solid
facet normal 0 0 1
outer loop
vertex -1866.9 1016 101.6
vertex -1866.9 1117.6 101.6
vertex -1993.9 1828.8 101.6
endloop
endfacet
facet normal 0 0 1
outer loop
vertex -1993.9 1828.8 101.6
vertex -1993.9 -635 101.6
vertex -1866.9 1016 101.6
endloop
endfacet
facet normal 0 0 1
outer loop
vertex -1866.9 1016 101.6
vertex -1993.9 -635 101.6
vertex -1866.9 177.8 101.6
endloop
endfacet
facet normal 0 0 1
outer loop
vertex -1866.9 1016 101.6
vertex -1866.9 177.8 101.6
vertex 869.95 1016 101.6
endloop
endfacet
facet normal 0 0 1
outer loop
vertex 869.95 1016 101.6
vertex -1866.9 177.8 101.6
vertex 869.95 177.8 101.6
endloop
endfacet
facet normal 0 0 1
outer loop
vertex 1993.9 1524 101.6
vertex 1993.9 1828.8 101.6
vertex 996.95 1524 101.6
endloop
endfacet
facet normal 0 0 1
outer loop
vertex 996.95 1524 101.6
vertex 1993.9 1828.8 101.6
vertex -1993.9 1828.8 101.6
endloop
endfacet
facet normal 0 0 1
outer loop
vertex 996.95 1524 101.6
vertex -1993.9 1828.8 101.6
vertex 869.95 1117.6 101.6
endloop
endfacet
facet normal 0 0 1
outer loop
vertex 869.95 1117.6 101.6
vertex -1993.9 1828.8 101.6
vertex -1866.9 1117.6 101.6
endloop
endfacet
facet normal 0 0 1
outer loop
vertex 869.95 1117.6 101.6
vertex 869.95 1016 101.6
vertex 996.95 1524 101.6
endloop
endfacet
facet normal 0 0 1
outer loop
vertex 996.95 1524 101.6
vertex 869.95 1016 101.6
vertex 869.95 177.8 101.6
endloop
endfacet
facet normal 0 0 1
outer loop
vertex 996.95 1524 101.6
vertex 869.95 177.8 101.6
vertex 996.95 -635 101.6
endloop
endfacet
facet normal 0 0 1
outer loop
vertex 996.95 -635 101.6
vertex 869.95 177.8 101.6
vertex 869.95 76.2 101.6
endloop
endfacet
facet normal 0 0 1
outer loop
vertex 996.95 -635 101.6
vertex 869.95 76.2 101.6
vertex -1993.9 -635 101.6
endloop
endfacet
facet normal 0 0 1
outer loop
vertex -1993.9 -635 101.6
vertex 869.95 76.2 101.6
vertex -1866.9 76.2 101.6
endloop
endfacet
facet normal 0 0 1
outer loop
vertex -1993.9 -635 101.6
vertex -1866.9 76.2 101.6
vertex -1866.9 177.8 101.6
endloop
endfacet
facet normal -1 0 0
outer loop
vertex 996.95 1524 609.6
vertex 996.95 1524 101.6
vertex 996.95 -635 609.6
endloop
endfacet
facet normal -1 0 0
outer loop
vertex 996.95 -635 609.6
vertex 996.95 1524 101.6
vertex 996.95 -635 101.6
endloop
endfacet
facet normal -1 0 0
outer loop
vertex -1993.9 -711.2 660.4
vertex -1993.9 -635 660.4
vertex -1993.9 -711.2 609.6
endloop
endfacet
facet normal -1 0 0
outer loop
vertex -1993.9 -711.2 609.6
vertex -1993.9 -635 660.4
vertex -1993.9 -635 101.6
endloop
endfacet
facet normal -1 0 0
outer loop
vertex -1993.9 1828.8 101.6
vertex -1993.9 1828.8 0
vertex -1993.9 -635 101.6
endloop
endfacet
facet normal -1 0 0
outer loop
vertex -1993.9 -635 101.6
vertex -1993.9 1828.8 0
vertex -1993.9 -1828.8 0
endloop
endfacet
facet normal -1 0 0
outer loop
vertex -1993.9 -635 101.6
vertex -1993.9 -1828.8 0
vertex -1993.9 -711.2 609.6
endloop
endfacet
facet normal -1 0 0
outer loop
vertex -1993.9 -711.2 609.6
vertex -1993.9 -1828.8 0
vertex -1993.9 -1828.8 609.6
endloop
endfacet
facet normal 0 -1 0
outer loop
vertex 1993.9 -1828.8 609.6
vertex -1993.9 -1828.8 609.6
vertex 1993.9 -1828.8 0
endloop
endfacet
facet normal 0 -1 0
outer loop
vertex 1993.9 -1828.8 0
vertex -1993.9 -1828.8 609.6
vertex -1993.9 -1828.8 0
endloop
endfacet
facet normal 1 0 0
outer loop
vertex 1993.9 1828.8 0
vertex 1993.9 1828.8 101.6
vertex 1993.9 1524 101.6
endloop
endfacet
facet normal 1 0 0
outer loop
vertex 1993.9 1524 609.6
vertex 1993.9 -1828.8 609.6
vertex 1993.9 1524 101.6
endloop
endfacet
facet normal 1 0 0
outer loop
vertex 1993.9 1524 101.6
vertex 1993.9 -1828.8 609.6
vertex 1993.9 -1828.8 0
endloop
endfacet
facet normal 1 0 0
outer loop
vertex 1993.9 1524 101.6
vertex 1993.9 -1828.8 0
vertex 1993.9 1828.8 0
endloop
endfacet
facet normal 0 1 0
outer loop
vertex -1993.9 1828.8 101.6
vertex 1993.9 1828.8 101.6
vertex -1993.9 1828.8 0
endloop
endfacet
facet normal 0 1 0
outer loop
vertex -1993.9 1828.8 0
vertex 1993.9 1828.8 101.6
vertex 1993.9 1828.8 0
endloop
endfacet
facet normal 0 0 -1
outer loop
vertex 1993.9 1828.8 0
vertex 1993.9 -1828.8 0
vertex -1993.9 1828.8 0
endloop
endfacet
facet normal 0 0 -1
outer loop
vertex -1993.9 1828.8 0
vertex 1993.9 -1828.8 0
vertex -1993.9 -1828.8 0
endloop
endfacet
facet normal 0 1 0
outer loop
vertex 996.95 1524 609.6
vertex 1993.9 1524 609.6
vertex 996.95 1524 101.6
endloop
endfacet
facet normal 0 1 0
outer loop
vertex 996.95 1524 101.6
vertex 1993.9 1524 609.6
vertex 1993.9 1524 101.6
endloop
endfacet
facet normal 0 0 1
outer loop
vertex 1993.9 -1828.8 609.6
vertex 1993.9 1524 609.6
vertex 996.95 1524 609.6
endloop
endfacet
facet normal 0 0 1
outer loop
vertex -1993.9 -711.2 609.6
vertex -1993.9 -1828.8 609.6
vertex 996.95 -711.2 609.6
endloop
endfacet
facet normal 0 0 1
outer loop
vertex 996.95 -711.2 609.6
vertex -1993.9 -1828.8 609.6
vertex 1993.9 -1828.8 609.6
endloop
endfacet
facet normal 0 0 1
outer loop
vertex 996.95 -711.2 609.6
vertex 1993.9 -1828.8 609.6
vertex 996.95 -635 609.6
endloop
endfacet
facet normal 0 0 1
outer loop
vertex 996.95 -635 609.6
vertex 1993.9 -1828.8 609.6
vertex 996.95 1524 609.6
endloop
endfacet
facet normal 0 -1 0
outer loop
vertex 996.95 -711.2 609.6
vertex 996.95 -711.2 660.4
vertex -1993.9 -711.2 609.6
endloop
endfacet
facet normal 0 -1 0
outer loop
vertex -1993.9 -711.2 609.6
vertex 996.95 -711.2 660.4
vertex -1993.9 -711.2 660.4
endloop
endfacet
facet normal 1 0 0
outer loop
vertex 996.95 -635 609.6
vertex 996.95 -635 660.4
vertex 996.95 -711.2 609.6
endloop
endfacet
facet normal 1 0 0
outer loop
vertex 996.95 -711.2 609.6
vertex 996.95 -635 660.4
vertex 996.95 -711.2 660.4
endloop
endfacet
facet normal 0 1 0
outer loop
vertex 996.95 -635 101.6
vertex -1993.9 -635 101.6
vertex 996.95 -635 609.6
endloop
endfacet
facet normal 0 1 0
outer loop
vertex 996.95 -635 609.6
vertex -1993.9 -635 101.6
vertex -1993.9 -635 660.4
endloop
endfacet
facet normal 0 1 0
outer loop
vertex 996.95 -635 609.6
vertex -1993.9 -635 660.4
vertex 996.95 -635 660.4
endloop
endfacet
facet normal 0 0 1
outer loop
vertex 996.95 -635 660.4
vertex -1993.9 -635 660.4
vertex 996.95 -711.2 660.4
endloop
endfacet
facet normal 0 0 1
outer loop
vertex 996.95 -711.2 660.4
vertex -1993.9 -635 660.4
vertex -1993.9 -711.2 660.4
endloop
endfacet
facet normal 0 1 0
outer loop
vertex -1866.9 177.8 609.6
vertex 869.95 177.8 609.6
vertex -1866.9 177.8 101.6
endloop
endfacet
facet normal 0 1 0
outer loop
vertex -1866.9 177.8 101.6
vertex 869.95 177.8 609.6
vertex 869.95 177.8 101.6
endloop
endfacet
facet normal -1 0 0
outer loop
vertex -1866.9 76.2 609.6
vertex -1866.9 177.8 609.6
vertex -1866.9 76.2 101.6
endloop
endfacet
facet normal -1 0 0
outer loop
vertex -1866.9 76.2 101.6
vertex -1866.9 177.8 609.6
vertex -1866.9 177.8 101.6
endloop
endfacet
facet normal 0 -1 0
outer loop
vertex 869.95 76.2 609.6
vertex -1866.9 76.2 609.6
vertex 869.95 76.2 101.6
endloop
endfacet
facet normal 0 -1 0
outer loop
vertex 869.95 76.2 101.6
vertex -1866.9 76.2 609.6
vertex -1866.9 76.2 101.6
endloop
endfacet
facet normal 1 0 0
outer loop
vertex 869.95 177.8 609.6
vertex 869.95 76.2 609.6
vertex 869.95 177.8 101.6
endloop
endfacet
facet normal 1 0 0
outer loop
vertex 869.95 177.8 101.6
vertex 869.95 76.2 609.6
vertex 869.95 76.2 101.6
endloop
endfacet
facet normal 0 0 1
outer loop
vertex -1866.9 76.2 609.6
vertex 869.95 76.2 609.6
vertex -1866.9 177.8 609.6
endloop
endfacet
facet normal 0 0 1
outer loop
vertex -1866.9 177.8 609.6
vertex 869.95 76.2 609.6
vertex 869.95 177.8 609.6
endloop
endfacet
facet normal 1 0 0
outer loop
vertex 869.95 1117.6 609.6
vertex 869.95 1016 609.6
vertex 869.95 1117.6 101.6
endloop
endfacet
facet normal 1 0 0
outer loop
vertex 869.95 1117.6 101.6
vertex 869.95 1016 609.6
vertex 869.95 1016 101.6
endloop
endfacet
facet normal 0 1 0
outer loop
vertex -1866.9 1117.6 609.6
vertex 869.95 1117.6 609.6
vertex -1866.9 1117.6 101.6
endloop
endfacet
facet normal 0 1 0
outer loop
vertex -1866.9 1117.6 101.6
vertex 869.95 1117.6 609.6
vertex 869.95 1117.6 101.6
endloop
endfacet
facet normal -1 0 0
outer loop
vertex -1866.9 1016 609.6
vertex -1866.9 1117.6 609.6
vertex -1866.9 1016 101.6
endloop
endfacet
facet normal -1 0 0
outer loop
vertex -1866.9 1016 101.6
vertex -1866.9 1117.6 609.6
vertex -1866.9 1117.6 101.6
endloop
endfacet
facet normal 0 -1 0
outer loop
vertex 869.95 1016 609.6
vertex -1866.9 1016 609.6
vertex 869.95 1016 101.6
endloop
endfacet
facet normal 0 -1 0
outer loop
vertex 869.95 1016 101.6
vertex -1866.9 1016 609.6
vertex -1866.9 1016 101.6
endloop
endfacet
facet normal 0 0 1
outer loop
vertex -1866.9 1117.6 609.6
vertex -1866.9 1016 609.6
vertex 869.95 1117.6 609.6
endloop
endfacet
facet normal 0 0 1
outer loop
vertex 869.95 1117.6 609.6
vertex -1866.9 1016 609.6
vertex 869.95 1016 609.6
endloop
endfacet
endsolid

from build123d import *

# Parameters (mm, degrees)
SKETCH1_W           = 3987.8
SKETCH1_H           = 3657.6
BOSS_EXTRUDE1_DEPTH = 101.6
BOSS_EXTRUDE2_DEPTH = 508
SKETCH4_W           = 2990.85
SKETCH4_H           = 76.2
BOSS_EXTRUDE3_DEPTH = 558.8
SKETCH5_W           = 2736.85
SKETCH5_H           = 101.6
BOSS_EXTRUDE4_DEPTH = 508


with BuildPart() as part:
    # Sketch1 → Boss-Extrude1 (new body)
    with BuildSketch(Plane.XY):
        Rectangle(SKETCH1_W, SKETCH1_H)
    extrude(amount=BOSS_EXTRUDE1_DEPTH)

    # Sketch2 → Boss-Extrude2 (add)
    with BuildSketch(Plane.XY.offset(101.6)):
        Polygon((-1993.9, -1828.8), (-1993.9, -711.2), (996.95, -711.2), (996.95, 1524), (1993.9, 1524), (1993.9, -1828.8), align=None)
    extrude(amount=BOSS_EXTRUDE2_DEPTH)

    # Sketch4 → Boss-Extrude3 (add)
    with BuildSketch(Plane.XY.offset(101.6)):
        with Locations((-498.475, -673.1)):
            Rectangle(SKETCH4_W, SKETCH4_H)
    extrude(amount=BOSS_EXTRUDE3_DEPTH)

    # Sketch5 → Boss-Extrude4 (add)
    with BuildSketch(Plane.XY.offset(101.6)):
        with Locations((-498.475, 127)):
            Rectangle(SKETCH5_W, SKETCH5_H)
        with Locations((-498.475, 1066.8)):
            Rectangle(SKETCH5_W, SKETCH5_H)
    extrude(amount=BOSS_EXTRUDE4_DEPTH)


solid = part.part
